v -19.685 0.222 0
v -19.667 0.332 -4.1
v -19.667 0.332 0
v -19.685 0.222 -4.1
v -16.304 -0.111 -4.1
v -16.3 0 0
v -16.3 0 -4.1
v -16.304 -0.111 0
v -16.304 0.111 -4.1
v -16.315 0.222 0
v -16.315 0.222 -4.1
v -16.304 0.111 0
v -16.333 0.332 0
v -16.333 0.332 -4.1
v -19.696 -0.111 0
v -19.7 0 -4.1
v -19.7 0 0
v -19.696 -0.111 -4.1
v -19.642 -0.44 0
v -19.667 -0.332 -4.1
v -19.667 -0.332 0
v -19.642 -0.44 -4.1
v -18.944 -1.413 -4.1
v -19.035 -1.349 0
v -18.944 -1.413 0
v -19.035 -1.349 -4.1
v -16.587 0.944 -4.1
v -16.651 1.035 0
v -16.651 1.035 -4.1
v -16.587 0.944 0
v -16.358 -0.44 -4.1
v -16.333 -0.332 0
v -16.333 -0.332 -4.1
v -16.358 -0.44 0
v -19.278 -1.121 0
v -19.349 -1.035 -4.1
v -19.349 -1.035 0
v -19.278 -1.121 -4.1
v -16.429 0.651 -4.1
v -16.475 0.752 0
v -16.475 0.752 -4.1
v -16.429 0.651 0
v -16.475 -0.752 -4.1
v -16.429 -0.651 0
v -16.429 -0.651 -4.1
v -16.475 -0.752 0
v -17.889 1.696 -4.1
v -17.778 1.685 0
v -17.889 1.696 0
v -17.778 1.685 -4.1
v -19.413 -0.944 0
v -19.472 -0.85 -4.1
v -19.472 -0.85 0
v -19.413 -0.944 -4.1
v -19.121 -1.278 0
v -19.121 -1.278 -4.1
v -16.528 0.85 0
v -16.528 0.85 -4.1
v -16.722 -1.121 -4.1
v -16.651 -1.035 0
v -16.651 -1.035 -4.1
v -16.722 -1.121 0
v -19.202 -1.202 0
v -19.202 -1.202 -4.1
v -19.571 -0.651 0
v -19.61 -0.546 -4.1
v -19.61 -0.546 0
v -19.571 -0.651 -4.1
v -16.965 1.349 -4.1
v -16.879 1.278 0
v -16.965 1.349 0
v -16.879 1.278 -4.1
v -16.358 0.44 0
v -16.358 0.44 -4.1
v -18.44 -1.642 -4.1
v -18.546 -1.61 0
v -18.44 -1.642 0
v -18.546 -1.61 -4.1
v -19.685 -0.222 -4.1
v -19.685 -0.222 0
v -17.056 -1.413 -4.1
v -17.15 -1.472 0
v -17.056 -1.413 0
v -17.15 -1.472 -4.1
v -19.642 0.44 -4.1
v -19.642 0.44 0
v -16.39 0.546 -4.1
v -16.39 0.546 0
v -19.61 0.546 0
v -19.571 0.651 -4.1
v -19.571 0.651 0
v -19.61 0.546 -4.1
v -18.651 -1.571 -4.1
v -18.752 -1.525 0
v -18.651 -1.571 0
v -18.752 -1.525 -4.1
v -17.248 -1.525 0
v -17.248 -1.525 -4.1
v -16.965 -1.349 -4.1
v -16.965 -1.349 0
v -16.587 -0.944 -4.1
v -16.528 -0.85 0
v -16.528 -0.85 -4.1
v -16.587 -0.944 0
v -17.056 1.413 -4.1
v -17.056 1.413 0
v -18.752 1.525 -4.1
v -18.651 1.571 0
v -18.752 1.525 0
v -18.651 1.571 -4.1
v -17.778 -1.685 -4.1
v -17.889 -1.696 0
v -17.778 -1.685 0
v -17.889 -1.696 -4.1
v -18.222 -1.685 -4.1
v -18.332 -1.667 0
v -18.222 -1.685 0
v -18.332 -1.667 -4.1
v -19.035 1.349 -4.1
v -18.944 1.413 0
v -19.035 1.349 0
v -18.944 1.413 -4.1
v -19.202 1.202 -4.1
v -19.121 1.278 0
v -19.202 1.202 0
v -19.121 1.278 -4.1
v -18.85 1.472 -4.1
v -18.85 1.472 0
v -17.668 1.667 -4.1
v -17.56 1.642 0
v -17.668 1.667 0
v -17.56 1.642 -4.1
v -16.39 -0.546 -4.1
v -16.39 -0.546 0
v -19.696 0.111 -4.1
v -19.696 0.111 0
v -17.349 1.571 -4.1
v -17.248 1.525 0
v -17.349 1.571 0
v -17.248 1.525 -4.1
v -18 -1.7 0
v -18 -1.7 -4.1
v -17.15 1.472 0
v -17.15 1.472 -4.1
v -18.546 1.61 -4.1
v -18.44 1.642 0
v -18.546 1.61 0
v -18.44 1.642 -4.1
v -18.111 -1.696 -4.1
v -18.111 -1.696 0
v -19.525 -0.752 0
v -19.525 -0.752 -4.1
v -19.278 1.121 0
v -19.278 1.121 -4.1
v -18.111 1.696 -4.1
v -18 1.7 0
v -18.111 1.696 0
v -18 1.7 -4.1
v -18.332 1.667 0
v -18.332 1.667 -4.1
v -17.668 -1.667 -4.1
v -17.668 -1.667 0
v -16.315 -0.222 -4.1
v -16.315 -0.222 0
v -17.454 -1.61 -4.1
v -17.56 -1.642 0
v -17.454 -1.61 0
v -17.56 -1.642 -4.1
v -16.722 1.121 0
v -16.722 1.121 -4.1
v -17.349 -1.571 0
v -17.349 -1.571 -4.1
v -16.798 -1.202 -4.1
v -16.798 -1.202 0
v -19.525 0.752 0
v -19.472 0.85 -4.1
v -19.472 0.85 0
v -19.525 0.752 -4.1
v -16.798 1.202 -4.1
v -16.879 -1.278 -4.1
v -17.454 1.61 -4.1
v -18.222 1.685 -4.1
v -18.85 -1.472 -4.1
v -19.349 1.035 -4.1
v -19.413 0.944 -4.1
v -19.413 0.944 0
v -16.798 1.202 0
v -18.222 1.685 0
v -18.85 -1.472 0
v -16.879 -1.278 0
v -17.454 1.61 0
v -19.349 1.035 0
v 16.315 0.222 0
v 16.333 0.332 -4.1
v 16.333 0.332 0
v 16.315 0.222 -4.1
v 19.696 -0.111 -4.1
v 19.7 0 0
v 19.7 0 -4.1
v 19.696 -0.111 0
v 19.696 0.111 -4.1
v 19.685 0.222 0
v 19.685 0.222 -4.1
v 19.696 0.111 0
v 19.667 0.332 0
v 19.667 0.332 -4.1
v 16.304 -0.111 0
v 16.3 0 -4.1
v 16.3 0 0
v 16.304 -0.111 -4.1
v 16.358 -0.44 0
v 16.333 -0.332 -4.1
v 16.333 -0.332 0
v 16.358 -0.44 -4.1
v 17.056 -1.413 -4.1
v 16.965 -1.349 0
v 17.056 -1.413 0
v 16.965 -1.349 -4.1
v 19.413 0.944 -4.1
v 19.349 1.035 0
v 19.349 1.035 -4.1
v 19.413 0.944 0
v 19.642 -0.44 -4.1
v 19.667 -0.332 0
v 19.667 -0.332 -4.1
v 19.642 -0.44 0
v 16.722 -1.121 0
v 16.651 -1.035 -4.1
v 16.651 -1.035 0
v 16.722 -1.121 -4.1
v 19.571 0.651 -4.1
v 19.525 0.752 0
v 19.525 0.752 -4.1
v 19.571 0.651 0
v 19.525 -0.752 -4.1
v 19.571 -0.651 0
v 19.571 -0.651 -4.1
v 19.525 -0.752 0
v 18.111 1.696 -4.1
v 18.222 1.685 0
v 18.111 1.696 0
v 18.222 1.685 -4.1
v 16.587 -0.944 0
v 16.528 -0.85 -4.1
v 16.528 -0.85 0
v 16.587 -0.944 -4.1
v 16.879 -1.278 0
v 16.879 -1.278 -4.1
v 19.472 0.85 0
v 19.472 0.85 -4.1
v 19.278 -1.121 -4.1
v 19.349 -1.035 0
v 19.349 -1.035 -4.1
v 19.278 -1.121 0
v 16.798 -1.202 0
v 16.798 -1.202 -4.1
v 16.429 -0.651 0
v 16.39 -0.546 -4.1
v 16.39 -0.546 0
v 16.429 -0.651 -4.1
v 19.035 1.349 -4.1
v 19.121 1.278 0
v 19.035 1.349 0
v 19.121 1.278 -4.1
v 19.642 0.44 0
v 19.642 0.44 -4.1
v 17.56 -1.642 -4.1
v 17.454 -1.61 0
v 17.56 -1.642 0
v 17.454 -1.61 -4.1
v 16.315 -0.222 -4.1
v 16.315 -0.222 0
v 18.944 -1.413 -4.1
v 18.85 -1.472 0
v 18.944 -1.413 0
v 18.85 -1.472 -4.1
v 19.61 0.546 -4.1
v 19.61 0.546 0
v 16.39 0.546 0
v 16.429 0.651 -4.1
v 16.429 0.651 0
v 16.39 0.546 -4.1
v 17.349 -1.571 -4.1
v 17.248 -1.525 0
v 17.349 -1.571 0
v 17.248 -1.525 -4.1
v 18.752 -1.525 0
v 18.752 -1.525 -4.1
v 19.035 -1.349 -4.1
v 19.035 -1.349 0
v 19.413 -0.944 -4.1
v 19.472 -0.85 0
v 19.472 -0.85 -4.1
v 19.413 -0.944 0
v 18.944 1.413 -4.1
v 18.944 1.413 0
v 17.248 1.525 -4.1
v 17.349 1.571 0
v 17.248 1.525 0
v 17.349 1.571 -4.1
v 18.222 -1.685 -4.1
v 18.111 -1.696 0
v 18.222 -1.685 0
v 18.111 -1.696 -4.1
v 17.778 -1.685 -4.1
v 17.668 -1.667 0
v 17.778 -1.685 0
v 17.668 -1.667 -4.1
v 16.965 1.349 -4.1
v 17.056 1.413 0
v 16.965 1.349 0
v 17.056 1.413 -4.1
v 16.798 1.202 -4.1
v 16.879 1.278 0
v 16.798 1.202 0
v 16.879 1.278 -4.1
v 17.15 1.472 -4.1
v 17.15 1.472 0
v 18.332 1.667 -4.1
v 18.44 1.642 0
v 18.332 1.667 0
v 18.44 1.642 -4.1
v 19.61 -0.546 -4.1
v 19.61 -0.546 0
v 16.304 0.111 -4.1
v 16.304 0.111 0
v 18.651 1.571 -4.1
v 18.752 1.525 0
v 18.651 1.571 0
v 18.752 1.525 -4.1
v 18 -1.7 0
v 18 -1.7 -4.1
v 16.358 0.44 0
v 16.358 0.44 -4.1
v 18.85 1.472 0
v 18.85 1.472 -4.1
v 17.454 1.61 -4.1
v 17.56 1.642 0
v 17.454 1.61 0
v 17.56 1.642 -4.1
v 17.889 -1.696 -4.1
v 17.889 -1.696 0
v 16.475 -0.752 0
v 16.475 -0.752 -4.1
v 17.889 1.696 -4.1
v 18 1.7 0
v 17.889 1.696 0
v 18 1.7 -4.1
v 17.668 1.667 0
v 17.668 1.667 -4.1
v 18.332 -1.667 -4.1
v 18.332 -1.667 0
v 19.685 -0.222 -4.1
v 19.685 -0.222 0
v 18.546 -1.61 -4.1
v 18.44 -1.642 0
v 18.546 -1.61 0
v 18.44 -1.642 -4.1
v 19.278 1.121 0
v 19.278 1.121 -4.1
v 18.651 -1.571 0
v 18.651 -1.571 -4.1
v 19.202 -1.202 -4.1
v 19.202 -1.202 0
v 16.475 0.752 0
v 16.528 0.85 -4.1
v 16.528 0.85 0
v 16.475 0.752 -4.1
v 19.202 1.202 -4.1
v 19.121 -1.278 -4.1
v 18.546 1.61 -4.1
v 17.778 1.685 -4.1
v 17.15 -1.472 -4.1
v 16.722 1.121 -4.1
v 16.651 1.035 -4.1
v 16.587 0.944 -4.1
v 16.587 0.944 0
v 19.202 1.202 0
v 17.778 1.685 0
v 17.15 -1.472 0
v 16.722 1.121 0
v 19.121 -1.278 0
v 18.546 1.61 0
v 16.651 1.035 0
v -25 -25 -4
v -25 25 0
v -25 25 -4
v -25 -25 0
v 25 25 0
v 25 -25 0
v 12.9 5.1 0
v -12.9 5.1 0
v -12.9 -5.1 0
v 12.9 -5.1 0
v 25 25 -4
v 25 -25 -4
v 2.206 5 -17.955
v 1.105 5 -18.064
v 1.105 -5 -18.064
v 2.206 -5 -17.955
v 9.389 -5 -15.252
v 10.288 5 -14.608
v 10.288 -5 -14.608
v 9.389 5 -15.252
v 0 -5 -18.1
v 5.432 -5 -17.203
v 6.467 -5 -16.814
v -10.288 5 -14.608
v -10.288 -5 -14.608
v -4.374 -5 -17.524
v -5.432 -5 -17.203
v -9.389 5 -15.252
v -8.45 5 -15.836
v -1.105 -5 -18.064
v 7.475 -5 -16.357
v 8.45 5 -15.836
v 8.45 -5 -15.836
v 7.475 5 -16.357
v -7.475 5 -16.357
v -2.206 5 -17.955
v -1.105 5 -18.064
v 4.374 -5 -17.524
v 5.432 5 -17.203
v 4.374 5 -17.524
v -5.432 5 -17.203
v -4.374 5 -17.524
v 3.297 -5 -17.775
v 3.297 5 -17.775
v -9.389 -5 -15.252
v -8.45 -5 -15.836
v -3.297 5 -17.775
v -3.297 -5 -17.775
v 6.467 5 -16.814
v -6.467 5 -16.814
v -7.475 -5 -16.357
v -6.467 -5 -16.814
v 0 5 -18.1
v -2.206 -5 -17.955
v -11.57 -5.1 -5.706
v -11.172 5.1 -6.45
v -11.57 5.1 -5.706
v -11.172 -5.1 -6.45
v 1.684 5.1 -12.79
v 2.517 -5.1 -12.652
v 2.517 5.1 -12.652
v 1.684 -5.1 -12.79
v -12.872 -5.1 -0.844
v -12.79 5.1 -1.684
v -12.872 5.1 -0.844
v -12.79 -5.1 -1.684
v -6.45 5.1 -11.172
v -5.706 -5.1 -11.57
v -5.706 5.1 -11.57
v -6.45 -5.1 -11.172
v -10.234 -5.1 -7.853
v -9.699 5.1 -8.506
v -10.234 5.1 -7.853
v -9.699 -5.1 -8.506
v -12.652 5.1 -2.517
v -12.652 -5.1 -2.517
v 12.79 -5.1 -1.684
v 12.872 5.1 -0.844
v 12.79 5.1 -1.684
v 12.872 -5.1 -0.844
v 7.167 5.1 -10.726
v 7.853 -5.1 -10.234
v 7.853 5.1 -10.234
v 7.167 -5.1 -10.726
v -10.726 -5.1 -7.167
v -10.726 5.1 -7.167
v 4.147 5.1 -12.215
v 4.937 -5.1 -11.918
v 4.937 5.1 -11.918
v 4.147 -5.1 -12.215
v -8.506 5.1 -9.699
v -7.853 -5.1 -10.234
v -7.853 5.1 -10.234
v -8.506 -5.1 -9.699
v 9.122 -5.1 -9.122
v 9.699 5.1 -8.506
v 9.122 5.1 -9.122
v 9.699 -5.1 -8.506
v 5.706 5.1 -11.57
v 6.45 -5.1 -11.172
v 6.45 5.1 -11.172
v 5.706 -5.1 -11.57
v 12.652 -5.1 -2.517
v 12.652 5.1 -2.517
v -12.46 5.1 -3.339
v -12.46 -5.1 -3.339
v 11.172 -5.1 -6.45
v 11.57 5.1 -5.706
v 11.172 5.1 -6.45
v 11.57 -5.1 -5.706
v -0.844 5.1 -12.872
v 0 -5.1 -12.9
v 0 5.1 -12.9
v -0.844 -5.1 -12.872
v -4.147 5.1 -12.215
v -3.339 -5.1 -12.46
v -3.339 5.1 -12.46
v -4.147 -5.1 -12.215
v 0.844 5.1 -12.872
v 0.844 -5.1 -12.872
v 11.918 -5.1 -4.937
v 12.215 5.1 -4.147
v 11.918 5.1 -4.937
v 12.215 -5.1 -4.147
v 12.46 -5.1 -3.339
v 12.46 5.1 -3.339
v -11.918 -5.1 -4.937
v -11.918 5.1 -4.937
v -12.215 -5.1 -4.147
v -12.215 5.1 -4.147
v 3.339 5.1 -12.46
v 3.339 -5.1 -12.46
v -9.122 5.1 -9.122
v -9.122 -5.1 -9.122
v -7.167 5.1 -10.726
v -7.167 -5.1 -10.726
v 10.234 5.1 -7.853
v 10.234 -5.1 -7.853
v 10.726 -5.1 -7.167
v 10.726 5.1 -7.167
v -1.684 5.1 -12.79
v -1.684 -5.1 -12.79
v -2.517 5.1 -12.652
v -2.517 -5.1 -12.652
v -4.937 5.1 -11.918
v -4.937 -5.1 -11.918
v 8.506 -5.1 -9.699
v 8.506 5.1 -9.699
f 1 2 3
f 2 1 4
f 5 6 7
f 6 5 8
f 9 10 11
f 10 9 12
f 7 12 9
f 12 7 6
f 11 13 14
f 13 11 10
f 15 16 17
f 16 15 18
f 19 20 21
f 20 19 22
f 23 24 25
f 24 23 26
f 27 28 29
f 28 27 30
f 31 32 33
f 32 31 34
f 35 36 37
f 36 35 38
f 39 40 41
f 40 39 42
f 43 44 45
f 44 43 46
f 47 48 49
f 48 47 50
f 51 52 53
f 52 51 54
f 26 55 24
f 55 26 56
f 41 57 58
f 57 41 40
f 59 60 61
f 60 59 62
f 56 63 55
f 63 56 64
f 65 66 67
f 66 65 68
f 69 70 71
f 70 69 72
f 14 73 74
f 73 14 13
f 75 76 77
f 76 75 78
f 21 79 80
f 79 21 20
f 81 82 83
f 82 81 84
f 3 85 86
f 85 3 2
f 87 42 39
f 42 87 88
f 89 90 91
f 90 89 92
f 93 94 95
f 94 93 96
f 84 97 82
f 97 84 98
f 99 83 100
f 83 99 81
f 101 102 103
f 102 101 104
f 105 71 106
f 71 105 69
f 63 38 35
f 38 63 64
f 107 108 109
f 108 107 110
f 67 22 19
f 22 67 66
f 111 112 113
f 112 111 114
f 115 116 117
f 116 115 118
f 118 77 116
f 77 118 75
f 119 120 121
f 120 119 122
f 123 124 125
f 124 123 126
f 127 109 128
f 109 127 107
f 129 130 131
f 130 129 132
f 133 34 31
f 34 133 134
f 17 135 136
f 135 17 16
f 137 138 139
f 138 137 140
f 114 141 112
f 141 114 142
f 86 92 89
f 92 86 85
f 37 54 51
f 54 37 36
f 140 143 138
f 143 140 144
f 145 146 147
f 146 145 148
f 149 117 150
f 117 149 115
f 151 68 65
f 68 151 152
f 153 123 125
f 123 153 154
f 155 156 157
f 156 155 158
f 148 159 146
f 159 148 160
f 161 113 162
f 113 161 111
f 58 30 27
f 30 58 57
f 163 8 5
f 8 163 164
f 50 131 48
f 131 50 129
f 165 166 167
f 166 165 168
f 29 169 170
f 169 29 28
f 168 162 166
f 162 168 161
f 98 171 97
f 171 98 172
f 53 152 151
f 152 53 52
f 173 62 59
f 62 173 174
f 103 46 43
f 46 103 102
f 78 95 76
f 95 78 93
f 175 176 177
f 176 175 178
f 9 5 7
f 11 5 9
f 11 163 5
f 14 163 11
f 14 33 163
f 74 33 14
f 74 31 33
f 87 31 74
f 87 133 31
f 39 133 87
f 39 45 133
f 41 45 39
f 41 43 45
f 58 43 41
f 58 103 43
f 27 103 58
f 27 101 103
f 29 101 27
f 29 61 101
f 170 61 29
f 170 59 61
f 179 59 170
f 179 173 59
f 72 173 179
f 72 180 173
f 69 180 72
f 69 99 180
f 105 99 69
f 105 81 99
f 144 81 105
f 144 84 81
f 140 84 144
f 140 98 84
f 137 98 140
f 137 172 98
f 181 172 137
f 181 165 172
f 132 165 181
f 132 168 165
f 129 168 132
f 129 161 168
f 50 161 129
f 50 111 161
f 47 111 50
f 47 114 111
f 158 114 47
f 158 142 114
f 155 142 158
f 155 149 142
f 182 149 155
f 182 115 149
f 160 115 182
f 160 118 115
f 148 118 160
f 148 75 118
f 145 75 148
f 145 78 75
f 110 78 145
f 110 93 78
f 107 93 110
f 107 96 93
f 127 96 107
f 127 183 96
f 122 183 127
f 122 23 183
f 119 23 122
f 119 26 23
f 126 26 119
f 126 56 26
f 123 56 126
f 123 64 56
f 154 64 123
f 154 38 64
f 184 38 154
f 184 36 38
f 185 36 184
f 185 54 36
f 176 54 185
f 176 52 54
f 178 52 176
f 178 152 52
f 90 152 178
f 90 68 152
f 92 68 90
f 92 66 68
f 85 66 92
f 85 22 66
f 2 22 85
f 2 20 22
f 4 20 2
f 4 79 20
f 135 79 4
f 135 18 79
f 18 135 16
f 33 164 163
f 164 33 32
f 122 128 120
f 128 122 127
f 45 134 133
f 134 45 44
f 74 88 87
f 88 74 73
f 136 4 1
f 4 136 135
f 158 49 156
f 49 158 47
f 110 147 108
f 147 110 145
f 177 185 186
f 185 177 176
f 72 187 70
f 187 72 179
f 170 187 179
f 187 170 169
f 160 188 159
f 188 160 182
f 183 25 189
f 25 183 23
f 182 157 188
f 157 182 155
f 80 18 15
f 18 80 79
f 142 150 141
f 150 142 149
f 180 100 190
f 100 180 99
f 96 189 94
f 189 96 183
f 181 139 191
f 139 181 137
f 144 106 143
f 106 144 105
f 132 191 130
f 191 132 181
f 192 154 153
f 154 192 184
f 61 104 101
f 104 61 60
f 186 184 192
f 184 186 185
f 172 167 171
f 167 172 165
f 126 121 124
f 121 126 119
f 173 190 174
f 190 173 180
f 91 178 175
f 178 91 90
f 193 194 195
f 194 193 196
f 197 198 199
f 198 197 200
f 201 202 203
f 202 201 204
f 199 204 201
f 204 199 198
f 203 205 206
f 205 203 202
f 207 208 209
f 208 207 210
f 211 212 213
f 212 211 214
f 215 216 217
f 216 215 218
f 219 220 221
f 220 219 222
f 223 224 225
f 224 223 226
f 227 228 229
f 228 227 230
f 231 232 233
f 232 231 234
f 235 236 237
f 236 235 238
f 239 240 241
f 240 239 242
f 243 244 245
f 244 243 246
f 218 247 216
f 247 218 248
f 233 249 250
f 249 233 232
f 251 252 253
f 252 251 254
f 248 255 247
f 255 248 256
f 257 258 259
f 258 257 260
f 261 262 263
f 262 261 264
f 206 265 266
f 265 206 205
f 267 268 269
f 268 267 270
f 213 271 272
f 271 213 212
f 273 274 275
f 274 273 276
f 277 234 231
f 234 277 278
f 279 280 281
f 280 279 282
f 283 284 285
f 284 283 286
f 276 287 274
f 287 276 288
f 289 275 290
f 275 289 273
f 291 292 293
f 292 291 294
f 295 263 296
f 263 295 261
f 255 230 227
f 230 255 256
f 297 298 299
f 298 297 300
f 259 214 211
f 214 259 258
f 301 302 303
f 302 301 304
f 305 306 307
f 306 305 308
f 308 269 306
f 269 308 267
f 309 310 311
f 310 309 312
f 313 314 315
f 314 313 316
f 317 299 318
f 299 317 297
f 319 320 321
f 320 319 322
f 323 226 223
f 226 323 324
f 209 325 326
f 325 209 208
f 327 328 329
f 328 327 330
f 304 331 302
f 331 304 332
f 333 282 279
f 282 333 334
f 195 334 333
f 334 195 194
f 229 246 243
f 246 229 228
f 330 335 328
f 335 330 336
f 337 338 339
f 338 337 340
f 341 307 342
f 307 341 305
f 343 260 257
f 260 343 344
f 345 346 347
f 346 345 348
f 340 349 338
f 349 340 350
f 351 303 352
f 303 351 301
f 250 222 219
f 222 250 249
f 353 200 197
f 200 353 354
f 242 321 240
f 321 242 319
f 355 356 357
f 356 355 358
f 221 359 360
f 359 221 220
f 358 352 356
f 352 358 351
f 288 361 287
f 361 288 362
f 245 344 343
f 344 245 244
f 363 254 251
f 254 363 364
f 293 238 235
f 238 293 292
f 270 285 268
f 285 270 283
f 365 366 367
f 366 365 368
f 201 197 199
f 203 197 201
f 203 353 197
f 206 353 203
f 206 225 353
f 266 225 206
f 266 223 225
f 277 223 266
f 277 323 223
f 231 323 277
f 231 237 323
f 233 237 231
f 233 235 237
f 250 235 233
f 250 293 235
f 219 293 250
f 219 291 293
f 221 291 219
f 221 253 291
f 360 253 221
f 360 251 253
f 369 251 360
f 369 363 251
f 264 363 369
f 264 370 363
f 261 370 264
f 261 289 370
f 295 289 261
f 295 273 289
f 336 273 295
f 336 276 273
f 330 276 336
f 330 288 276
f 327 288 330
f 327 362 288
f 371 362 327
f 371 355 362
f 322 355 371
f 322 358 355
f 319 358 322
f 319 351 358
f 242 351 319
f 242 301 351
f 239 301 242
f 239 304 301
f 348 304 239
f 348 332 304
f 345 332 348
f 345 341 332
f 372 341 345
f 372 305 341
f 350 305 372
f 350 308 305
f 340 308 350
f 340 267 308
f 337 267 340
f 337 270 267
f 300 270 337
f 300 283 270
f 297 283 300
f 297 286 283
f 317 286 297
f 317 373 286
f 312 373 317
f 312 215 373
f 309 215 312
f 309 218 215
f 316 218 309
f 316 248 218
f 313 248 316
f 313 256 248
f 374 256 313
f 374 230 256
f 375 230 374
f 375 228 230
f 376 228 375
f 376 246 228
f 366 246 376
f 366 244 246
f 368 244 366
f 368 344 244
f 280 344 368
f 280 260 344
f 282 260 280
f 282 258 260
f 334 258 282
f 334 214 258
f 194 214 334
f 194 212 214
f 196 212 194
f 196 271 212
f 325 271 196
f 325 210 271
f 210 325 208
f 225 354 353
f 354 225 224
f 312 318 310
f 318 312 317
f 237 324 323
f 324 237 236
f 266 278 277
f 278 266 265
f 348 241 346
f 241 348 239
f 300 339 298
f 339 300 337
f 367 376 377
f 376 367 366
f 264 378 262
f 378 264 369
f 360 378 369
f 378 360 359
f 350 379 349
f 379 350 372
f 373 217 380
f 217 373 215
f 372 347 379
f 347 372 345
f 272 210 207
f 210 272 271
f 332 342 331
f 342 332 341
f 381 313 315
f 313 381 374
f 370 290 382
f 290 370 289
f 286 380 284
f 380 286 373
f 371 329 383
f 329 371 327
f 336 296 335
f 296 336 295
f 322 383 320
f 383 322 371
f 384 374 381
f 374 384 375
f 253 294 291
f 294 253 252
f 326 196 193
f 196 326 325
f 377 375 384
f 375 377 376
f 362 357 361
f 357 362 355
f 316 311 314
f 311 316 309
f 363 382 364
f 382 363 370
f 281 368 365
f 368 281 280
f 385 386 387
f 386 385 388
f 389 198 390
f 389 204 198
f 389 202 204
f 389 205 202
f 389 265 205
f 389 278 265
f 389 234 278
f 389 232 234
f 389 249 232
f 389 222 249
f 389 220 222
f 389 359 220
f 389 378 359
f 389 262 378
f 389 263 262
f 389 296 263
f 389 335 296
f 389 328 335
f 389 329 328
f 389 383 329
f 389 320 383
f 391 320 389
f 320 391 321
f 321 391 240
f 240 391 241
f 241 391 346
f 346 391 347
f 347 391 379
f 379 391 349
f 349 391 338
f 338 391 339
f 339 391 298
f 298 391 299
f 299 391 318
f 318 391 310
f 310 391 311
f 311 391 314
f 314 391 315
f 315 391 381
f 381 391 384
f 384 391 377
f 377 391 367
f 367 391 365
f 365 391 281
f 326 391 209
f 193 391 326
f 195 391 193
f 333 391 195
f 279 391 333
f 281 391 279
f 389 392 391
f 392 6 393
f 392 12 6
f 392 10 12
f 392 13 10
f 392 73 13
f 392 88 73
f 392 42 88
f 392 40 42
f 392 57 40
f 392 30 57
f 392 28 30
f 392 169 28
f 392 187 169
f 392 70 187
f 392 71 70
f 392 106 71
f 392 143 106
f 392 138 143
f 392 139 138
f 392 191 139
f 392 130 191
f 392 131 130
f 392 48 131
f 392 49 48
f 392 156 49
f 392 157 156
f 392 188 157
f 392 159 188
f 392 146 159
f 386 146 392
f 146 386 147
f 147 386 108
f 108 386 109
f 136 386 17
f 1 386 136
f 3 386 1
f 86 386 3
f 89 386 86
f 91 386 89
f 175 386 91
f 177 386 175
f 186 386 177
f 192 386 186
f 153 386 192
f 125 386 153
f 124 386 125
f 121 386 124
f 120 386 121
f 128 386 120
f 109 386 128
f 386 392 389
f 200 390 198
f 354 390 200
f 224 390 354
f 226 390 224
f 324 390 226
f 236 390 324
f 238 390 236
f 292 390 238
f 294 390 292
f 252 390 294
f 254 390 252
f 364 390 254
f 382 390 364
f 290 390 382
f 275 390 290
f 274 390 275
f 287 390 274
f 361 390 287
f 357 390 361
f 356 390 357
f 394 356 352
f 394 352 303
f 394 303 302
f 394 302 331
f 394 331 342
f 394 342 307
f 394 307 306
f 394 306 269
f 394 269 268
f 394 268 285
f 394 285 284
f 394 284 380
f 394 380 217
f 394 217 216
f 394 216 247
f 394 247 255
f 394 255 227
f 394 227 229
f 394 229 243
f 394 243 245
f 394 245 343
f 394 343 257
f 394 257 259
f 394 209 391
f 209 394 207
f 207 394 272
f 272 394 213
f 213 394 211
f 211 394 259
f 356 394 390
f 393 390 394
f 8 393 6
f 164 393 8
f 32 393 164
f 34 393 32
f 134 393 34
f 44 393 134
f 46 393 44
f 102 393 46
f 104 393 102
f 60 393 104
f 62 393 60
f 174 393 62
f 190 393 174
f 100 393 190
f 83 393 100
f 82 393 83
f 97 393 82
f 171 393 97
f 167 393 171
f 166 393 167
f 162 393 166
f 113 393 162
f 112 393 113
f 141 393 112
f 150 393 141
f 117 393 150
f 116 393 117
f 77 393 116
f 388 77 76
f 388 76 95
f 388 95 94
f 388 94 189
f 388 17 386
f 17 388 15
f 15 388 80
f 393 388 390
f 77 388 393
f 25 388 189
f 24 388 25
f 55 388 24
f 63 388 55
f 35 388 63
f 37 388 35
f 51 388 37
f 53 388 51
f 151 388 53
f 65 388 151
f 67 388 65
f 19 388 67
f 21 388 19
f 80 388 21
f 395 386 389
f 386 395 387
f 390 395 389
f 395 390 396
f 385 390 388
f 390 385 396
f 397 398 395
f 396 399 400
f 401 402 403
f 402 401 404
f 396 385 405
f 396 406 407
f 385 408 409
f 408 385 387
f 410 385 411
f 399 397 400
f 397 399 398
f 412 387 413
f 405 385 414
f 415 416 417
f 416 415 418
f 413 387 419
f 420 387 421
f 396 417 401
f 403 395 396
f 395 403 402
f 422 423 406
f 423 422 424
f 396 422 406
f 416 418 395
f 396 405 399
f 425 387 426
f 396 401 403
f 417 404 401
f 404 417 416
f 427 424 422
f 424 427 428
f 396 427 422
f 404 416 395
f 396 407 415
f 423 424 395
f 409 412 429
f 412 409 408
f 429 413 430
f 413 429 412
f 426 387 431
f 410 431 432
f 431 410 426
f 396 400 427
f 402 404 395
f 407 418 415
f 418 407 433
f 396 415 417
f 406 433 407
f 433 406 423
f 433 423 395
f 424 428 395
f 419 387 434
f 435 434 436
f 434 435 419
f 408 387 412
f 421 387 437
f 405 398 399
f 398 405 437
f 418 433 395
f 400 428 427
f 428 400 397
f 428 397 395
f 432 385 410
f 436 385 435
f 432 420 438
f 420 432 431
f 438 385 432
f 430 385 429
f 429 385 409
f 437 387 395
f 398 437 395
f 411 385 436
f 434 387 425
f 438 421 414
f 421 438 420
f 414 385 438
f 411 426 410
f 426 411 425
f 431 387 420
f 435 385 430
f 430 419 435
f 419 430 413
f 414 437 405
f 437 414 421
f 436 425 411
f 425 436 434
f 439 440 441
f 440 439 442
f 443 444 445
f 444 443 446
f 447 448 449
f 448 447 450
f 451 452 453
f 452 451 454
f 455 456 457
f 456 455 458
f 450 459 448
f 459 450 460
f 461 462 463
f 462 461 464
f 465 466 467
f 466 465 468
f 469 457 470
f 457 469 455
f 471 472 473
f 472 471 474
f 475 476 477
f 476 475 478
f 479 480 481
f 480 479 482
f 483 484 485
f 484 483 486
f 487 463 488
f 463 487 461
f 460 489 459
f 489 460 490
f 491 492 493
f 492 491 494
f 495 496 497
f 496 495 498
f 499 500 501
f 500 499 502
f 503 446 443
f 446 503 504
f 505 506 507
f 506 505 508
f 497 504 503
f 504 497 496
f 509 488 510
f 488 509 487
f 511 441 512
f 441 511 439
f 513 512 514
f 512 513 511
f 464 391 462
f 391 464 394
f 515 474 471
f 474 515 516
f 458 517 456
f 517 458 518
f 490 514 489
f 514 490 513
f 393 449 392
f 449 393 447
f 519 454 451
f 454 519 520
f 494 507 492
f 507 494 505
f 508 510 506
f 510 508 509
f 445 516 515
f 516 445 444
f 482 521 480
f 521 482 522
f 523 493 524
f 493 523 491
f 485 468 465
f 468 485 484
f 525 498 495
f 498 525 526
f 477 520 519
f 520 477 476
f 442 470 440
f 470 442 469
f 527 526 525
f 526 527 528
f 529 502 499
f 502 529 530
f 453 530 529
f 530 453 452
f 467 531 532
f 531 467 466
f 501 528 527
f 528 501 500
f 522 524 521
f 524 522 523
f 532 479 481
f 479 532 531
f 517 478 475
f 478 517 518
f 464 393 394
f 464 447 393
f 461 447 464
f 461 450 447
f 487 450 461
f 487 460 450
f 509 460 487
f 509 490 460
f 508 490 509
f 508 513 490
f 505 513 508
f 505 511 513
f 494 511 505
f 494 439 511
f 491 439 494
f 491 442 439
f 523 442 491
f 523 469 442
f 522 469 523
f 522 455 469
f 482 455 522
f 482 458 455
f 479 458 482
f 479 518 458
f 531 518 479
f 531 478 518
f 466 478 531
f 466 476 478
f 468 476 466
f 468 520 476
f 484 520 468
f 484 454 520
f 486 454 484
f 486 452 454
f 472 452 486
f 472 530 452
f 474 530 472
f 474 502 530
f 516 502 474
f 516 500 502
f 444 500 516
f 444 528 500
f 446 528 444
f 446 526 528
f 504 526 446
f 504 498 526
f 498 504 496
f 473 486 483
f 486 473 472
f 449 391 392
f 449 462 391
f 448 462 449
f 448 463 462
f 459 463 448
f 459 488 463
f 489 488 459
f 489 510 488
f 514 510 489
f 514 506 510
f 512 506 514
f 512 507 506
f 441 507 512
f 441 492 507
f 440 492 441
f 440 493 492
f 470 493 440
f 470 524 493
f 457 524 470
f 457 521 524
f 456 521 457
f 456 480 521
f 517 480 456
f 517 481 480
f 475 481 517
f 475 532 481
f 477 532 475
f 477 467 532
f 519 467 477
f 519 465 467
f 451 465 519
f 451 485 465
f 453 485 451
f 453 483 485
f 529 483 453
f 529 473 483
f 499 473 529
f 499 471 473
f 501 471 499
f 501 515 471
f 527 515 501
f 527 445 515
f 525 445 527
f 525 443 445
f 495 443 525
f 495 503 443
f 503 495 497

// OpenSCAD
// ================================================================
// Powder Excavator — Auger Clamp Bracket  v1
// ================================================================
//
// Split shaft-collar-with-mounting-plate bracket sketched in the
// design issue. Two of these clamp the v5 Archimedes auger
// (cad/auger/archimedes-auger.scad, OD = 25 mm) to a flat chassis
// rail with print-friendly tolerance.
//
// Geometry (per the hand sketch):
//   - Bore ID = auger OD + 0.8 mm diametral clearance (loose slip
//     fit; the M3 pinch bolt compresses the 2 mm slit to take up
//     the slack and grip the auger).
//   - 4 mm ring wall, 10 mm width along the auger axis.
//   - 2 mm slit at top with twin ears + horizontal M3 through-hole
//     for the pinch bolt.
//   - Mounting plate tangent to the bottom of the ring with hull()
//     fillets on both flanks ("smooth transition" callout in the
//     sketch).
//   - Two M3 mounting holes through the plate; the flat bottom face
//     is the print-on face (marked "print on this face" in the
//     sketch), so no overhang supports are needed.
//
// Print: PLA or PETG, 0.2 mm layers, 0.4 mm nozzle, 3 perimeters,
//        25 % gyroid infill. Print bottom-face-down (default
//        orientation in this file), no supports required.
//
// Render: openscad.org/demo → F6, or:
//   bash cad/auger-bracket/render.sh
//
// ================================================================

/* [Auger Fit] */
auger_od        = 25.0;   // mm — must match cad/auger/archimedes-auger.scad outer_diameter
bore_clearance  = 0.8;    // mm — diametral clearance (loose slip fit)

/* [Ring] */
ring_wall       = 4.0;    // mm — radial wall around the bore
ring_width      = 10.0;   // mm — extent along the auger axis (matches sketch "10 mm")

/* [Clamp Slit + Pinch Bolt] */
slit_width      = 2.0;    // mm — gap between the two clamp halves
ear_height      = 6.0;    // mm — how far the ears stick above the ring OD
ear_thickness   = 6.0;    // mm — fore/aft thickness of each ear (along auger axis is ring_width)
pinch_bolt_d    = 3.4;    // mm — M3 clearance hole (loose, so the bolt slides freely)
pinch_nut_af    = 5.5;    // mm — M3 hex nut across-flats
pinch_nut_t     = 2.4;    // mm — M3 nut thickness
pinch_head_d    = 6.2;    // mm — M3 socket-cap head pocket OD

/* [Mounting Plate] */
plate_width     = 50.0;   // mm — along the auger axis direction... no, perpendicular: see below
plate_length    = 50.0;   // mm — perpendicular to the auger axis (wider than the ring for the mount holes)
plate_thickness = 4.0;    // mm — plate is 4 mm thick (same as ring wall — looks balanced and prints flat)
mount_hole_d    = 3.4;    // mm — M3 clearance for mounting screws
mount_hole_spacing = 36.0;// mm — between the two mounting holes, centred on the ring
mount_hole_inset   = 5.5; // mm — from the long edge of the plate (clears an M3 washer)

/* [Cosmetic Fillets] */
fillet_r        = 3.0;    // mm — hull() blob radius at the smooth ring→plate transition

// ================================================================
// Derived — do not edit
// ================================================================
bore_d          = auger_od + bore_clearance;
bore_r          = bore_d / 2;
ring_or         = bore_r + ring_wall;
ear_outer_x     = slit_width / 2 + ear_thickness;
ear_top_z       = ring_or + ear_height;
pinch_bolt_z    = ring_or + ear_height / 2;   // mid-height of the ear

$fn = 96;

// ================================================================
// Modules
// ================================================================

// Coordinate convention:
//   - Auger axis runs along Y (so the ring is in the XZ plane,
//     extruded in Y for ring_width).
//   - Plate sits at the bottom (-Z), flat side down on the build
//     plate. X is "across" the plate, Y is along the auger axis.

module ring_2d() {
    difference() {
        circle(r = ring_or);
        circle(r = bore_r);
    }
}

module ears_2d() {
    // Two ear blocks sitting tangent to the top of the ring,
    // separated by the slit. Each ear is ear_thickness wide
    // (X direction) and ear_height tall (above the ring OD).
    // They overlap the ring by 0.5 mm so the union is manifold.
    overlap = 0.5;
    for (sx = [-1, 1])
        translate([sx * (slit_width / 2 + ear_thickness / 2),
                   ring_or + ear_height / 2 - overlap])
            square([ear_thickness, ear_height + overlap], center = true);
}

module slit_2d() {
    // Vertical slit from just above the bore to past the top of
    // the ears. Width = slit_width.
    h = ear_top_z + 1;
    translate([0, bore_r - 0.01])
        square([slit_width, h - bore_r + 1], center = false)
            ;  // (will be re-expressed below to be centred on X=0)
}

module slit_cut_2d() {
    // Centred-on-X slit that opens the ring at the top and runs
    // through the ears.
    h = ear_top_z - bore_r + 1.5;
    translate([-slit_width / 2, bore_r])
        square([slit_width, h]);
}

module bracket_profile_2d() {
    // 2D profile in the XZ plane (auger axis = Y, into the page).
    difference() {
        union() {
            ring_2d();
            ears_2d();
            // Tangent stub down to the plate so the hull() smoothing
            // step has a continuous surface to blend.
            translate([-ring_or, -ring_or - 0.01])
                square([2 * ring_or, ring_or + 0.01]);
        }
        slit_cut_2d();
    }
}

// Plate footprint (XY plane), centred on the origin in X and Y.
module plate_2d() {
    square([plate_length, plate_width], center = true);
}

// The smooth ring→plate transition is built in 3D with hull() of:
//   - the lower half of the ring (extruded along Y), and
//   - a thin slab that is the top face of the plate.
// hull() then fills the space tangentially. fillet_r controls how
// much the ring's lower flank is shrunk before the hull, so that
// the blend is concave instead of a sharp tangent meet.
module smooth_transition() {
    // Lower-half-ring "anchor" for the hull. We extrude a half-disc
    // of OD = 2*ring_or sitting at the ring's lower flank, but
    // centred at z = -fillet_r so the hull has somewhere to grow
    // sideways from.
    hull() {
        // Anchor 1: full-width ring-OD half disc at z just below
        // the ring centre.
        translate([0, 0, -fillet_r * 0.4])
            rotate([90, 0, 0])
                linear_extrude(height = ring_width, center = true)
                    intersection() {
                        circle(r = ring_or);
                        translate([-ring_or, -ring_or])
                            square([2 * ring_or, ring_or]);
                    }
        // Anchor 2: top face of the plate.
        translate([0, 0, -plate_thickness])
            linear_extrude(height = 0.01)
                plate_2d();
    }
}

module mounting_plate() {
    difference() {
        translate([0, 0, -plate_thickness])
            linear_extrude(height = plate_thickness)
                plate_2d();
        // Two M3 mounting clearance holes, on the long axis of the
        // plate, symmetric about the ring.
        for (sx = [-1, 1])
            translate([sx * mount_hole_spacing / 2, 0, -plate_thickness - 0.1])
                cylinder(d = mount_hole_d, h = plate_thickness + 0.2);
    }
}

module pinch_bolt_cut() {
    // Horizontal M3 through-hole across both ears (along X), at
    // the ears' mid-height. One end is counterbored for an M3 hex
    // nut (captive); the other end is counterbored for an M3
    // socket-cap head.
    bolt_len = 2 * ear_outer_x + 1;
    translate([-(ear_outer_x + 0.5), ring_width / 2, pinch_bolt_z])
        rotate([0, 90, 0])
            cylinder(d = pinch_bolt_d, h = bolt_len);
    // Hex nut pocket on the -X side: a hexagonal prism cut into the
    // outer face of the left ear.
    nut_depth = pinch_nut_t + 0.2;
    translate([-ear_outer_x - 0.01, ring_width / 2, pinch_bolt_z])
        rotate([0, 90, 0])
            cylinder(r = pinch_nut_af / sqrt(3) * 2 / 2,  // af → across-corners radius
                     h = nut_depth, $fn = 6);
    // Socket-cap head pocket on the +X side.
    head_depth = 3.0;
    translate([ear_outer_x - head_depth + 0.01, ring_width / 2, pinch_bolt_z])
        rotate([0, 90, 0])
            cylinder(d = pinch_head_d, h = head_depth + 0.01);
}

module auger_bracket() {
    color("#7FB069", 0.95)
    difference() {
        union() {
            // Ring + ears, extruded along the auger axis (Y).
            rotate([90, 0, 0])
                translate([0, 0, -ring_width / 2])
                    linear_extrude(height = ring_width)
                        bracket_profile_2d();
            // Mounting plate.
            mounting_plate();
            // Smooth ring→plate blend on both flanks.
            smooth_transition();
        }
        // M3 pinch-bolt through-hole + nut/head pockets.
        pinch_bolt_cut();
        // Re-cut the bore (the hull() blend would otherwise close
        // a chord across it from below).
        rotate([90, 0, 0])
            translate([0, 0, -ring_width / 2 - 0.1])
                linear_extrude(height = ring_width + 0.2)
                    circle(r = bore_r);
        // Re-cut the mounting-plate clearance holes (in case the
        // hull blend grew over them — it won't with default
        // parameters, but stays robust if the plate is shrunk).
        for (sx = [-1, 1])
            translate([sx * mount_hole_spacing / 2, 0, -plate_thickness - 0.1])
                cylinder(d = mount_hole_d, h = plate_thickness + 0.2);
        // Re-cut the slit so the hull-derived smooth_transition
        // doesn't seal the gap between the two clamp halves.
        translate([-slit_width / 2, -ring_width / 2 - 0.1, bore_r])
            cube([slit_width, ring_width + 0.2, ear_top_z - bore_r + 1]);
    }
}

auger_bracket();
